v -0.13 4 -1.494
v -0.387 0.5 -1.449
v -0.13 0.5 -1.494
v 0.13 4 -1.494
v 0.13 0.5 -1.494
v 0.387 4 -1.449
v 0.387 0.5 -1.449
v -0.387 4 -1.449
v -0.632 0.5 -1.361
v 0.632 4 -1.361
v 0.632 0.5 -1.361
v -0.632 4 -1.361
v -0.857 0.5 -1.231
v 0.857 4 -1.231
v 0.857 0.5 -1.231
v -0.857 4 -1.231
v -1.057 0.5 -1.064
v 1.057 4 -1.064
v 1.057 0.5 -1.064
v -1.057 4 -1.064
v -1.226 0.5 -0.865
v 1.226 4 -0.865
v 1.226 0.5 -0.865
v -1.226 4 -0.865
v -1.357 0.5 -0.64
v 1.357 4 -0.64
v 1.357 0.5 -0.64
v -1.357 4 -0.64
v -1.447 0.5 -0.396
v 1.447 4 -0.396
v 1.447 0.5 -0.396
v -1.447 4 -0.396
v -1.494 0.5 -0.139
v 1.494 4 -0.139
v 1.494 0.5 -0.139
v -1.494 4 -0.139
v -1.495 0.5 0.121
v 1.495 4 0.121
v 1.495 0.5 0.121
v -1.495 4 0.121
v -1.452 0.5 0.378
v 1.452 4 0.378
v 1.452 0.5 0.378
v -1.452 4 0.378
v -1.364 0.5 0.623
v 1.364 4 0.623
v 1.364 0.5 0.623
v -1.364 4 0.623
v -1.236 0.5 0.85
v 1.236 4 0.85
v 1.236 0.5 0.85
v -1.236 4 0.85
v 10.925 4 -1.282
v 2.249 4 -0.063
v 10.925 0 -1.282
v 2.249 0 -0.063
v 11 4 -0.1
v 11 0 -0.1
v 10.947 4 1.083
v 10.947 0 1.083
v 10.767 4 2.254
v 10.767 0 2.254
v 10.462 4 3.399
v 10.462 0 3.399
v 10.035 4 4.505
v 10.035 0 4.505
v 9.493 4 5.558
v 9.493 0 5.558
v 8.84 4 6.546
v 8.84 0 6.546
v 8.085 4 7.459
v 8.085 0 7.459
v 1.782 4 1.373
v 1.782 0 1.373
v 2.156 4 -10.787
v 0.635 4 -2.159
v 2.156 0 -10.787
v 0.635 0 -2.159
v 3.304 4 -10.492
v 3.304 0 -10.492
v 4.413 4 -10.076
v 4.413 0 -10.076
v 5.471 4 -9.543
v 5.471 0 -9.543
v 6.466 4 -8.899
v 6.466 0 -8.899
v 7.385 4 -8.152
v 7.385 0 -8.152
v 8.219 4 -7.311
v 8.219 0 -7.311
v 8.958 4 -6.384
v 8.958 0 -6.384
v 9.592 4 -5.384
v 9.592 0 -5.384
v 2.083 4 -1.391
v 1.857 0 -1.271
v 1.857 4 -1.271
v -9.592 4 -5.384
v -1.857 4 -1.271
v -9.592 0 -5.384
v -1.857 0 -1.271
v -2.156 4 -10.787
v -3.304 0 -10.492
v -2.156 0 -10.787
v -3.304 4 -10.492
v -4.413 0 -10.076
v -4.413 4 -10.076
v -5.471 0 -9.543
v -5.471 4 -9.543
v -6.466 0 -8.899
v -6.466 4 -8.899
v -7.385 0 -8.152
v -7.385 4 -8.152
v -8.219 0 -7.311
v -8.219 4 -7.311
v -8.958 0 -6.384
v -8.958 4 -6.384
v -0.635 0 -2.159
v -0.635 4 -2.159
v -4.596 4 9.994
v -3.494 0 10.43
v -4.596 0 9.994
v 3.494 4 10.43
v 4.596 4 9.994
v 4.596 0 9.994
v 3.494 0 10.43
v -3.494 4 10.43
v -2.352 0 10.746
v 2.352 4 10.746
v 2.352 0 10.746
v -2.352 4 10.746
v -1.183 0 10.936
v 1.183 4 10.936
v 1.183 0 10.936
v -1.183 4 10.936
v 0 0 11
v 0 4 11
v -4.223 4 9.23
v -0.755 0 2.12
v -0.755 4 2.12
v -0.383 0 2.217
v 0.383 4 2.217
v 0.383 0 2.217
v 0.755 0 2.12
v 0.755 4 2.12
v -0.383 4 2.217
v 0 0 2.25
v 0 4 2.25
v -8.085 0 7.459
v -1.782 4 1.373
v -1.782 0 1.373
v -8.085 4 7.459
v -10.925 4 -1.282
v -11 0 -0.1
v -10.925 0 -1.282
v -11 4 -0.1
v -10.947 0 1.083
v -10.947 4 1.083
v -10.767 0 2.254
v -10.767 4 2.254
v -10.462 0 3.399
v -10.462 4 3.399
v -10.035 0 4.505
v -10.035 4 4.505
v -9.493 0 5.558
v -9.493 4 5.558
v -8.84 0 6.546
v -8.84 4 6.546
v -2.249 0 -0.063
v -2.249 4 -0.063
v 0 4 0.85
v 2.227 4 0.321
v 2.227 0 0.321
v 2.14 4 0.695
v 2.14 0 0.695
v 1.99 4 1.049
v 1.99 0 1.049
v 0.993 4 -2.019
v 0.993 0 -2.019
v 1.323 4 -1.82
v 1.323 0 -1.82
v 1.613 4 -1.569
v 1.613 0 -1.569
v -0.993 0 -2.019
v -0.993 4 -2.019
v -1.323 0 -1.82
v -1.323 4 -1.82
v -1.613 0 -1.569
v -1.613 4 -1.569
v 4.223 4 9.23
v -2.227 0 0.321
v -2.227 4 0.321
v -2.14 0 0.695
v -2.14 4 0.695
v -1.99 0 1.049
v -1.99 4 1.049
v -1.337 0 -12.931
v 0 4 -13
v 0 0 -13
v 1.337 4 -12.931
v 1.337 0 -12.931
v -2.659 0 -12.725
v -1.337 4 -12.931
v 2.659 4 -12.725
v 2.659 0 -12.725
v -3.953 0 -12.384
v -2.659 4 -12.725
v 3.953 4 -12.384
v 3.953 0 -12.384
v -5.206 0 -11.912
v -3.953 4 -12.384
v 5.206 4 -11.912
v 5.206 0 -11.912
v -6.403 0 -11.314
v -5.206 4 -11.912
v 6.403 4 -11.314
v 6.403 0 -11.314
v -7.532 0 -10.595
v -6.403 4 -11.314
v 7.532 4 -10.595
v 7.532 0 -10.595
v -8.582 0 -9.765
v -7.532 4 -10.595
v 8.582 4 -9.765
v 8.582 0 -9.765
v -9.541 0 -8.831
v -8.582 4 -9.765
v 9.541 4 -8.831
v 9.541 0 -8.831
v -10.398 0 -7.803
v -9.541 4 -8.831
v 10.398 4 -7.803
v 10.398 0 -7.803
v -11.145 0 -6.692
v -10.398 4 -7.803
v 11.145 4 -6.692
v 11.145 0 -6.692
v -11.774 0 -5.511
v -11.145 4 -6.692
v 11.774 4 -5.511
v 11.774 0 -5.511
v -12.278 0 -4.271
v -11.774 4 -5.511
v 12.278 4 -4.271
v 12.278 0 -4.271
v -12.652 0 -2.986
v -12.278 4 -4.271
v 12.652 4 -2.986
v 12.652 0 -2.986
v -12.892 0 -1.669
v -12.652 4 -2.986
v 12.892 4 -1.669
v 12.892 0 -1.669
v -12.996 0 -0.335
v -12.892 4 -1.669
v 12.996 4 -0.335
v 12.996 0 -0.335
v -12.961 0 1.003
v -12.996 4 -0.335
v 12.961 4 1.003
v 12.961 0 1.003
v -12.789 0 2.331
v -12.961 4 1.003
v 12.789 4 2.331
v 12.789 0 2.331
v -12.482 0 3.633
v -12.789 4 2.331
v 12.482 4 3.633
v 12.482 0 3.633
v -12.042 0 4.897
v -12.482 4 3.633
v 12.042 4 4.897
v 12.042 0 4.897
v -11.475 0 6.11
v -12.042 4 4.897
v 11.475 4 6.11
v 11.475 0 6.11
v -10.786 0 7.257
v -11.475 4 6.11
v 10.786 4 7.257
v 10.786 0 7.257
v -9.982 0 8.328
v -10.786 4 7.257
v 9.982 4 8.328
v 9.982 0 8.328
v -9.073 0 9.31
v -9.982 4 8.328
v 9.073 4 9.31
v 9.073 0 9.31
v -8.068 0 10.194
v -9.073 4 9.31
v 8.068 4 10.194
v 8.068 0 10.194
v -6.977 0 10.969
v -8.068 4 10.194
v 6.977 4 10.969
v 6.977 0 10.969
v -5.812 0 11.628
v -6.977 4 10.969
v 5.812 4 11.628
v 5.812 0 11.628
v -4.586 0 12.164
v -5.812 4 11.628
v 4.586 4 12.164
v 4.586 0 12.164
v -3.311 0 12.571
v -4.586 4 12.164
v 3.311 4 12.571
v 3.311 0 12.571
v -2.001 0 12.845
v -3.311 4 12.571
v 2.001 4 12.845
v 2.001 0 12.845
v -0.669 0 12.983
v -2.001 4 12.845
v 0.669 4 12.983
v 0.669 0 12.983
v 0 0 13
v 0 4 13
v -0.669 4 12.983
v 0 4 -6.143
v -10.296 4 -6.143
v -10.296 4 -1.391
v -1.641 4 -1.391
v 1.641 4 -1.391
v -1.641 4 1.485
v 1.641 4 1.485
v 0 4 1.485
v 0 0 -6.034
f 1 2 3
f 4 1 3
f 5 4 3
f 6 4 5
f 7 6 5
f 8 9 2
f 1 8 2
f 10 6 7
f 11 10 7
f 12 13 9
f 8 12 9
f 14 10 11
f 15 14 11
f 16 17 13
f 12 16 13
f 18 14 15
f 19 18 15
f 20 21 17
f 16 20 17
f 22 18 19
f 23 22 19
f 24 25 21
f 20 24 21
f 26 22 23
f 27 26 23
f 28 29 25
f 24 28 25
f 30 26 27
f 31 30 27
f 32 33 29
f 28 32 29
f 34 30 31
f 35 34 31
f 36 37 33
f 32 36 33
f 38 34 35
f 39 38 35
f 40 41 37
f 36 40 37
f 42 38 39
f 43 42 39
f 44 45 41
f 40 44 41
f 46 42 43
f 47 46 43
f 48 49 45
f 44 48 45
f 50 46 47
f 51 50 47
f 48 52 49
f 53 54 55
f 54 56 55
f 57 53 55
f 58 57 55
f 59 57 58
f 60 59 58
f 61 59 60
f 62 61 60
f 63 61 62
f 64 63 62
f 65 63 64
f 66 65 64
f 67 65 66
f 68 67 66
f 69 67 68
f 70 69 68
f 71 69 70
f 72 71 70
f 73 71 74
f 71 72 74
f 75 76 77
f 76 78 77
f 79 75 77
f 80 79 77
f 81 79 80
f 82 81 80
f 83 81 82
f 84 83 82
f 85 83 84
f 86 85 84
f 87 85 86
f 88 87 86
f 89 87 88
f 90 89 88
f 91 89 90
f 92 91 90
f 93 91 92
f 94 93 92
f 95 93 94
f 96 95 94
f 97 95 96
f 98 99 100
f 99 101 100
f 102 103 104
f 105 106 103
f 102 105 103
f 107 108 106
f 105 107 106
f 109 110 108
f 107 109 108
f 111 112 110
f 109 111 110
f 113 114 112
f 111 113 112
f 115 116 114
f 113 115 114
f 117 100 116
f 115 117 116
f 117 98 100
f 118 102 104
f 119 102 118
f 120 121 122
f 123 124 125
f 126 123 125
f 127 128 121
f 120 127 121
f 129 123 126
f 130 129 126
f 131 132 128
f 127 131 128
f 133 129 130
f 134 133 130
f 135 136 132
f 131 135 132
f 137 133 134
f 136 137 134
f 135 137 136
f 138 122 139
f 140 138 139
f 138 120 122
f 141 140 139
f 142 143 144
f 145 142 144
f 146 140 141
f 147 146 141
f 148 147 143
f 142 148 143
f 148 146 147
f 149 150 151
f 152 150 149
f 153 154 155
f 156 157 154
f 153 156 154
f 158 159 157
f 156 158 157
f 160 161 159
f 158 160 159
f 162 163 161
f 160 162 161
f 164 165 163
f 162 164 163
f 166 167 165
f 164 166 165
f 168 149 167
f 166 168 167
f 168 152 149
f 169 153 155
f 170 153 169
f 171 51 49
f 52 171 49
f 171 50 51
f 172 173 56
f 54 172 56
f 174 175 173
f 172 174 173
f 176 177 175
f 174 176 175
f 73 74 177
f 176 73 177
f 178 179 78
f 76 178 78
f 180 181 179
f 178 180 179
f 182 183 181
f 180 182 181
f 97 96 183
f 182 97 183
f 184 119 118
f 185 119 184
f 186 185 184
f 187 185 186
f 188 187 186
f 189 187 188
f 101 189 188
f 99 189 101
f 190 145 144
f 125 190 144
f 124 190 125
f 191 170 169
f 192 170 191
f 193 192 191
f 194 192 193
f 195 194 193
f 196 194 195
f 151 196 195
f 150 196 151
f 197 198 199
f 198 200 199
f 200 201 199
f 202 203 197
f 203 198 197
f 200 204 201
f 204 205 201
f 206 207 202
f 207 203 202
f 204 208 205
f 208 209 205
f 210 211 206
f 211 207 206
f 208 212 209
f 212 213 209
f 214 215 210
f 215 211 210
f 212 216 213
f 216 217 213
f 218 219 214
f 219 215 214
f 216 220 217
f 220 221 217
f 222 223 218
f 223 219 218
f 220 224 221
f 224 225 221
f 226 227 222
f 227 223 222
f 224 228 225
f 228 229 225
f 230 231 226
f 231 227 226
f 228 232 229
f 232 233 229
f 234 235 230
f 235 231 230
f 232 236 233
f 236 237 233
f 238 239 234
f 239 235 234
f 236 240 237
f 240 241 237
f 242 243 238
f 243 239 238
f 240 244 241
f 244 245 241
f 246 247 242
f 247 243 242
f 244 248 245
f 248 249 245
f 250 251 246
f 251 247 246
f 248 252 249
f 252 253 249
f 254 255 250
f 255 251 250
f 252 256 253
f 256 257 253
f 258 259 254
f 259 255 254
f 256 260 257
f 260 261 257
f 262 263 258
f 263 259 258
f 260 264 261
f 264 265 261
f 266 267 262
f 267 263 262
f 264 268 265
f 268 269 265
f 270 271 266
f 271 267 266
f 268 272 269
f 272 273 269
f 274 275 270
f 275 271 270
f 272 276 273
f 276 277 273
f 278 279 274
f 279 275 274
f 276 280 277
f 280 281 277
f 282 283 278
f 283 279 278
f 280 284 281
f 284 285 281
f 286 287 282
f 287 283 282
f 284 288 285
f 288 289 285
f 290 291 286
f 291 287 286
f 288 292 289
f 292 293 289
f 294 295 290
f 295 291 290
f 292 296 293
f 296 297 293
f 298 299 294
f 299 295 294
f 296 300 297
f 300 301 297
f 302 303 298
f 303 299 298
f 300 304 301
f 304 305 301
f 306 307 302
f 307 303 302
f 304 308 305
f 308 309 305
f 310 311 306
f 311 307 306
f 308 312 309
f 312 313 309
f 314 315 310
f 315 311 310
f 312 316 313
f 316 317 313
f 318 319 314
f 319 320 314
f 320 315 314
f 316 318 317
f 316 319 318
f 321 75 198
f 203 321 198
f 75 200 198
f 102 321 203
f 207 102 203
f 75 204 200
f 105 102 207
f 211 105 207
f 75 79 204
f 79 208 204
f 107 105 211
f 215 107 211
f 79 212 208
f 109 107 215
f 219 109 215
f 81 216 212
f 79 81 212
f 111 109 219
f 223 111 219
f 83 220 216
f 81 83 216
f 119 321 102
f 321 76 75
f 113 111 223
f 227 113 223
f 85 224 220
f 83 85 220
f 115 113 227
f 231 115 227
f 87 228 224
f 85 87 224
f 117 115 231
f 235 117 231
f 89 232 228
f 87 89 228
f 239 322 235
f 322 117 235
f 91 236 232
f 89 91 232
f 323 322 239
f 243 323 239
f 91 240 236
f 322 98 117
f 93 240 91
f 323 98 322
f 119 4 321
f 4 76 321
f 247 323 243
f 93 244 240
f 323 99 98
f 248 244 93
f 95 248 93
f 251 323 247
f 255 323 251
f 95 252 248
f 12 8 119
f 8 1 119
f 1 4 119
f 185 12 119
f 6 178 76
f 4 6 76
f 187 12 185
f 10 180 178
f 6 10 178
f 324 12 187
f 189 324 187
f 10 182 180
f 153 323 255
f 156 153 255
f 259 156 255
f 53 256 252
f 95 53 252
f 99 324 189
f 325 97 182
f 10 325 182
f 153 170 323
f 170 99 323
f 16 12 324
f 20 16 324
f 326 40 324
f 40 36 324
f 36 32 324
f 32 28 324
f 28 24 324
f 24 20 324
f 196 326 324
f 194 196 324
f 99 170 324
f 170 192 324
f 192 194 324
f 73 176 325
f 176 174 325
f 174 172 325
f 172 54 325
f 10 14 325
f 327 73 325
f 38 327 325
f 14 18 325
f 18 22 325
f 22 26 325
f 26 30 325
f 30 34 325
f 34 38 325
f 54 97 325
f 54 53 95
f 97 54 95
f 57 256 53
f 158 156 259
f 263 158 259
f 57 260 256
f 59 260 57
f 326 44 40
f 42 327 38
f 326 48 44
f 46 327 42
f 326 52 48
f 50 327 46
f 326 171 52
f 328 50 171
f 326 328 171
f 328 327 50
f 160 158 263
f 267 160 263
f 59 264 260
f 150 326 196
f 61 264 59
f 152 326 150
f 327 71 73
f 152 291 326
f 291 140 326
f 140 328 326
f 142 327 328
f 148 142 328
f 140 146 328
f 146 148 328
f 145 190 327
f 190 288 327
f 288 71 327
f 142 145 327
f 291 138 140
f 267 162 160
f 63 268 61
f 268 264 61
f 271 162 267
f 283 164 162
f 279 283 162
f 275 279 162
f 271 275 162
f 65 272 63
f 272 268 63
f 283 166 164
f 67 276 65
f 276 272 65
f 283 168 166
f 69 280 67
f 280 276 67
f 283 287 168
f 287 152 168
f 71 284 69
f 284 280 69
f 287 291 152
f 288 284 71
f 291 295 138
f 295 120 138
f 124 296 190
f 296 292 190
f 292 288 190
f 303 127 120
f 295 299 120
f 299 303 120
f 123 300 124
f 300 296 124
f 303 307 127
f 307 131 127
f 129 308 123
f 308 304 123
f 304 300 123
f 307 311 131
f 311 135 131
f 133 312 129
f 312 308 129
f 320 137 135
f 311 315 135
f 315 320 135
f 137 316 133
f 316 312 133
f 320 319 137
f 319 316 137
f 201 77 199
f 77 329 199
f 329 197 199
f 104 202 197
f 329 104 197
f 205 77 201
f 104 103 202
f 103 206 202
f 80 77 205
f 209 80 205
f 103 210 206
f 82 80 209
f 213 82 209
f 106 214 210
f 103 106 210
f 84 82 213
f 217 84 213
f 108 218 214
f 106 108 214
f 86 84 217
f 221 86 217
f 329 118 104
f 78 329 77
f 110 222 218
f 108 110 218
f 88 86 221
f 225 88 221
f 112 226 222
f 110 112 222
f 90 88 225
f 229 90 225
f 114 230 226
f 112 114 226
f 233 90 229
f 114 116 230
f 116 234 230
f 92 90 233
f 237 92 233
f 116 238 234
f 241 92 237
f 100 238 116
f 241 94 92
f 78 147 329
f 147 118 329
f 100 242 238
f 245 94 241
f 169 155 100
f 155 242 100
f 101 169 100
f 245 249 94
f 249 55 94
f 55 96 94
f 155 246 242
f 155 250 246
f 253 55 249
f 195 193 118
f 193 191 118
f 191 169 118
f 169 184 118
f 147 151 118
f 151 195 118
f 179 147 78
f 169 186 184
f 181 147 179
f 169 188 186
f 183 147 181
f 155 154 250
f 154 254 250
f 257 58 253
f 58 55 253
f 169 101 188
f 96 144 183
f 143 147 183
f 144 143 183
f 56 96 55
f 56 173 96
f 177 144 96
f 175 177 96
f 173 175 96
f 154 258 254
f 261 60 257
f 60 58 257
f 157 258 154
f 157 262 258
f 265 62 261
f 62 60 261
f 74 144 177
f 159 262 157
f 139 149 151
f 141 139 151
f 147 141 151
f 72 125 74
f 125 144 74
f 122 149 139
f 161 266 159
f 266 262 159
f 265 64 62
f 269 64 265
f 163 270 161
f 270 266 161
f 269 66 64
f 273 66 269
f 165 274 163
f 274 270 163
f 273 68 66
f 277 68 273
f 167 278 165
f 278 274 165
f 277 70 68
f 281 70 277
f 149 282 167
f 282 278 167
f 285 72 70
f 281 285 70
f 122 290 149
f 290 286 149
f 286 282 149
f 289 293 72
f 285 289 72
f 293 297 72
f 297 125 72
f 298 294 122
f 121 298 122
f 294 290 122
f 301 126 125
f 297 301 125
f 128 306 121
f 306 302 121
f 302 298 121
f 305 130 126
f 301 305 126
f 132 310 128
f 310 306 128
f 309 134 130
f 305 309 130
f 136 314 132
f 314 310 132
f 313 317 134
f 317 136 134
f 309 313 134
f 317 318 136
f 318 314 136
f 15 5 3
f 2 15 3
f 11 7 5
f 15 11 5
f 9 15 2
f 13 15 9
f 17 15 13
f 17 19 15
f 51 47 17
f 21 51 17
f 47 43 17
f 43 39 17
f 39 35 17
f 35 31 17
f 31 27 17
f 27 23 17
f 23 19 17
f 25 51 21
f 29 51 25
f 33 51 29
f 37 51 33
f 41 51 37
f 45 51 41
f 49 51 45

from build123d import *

# Parameters (mm, degrees)
SKETCH1_R           = 13
BOSS_EXTRUDE1_DEPTH = 4
SKETCH1_4_R         = 1.5
BOSS_EXTRUDE2_DEPTH = 0.5


with BuildPart() as part:
    # Sketch1 → Boss-Extrude1 (new body)
    with BuildSketch(Plane(origin=(0, 0, 0), x_dir=(1, 0, 0), z_dir=(0, 1, 0))):
        Circle(SKETCH1_R)
        with BuildLine():
            Line((1.235920709, -0.85), (-1.235920709, -0.85))
            ThreePointArc((-1.235920709, -0.85), (0, 1.5), (1.235920709, -0.85))
        make_face(mode=Mode.SUBTRACT)
        with BuildLine():
            ThreePointArc((1.85666335, 1.270945004), (1.322516818, 1.820288237), (0.635, 2.158535383))
            Line((0.635, 2.158535383), (2.156355605, 10.786571768))
            ThreePointArc((2.156355605, 10.786571768), (6.465637775, 8.899186938), (9.59228884, 5.384050037))
            Line((9.59228884, 5.384050037), (1.85666335, 1.270945004))
        make_face(mode=Mode.SUBTRACT)
        with BuildLine():
            Line((2.249114933, 0.063103228), (10.924989896, 1.282417938))
            ThreePointArc((10.924989896, 1.282417938), (10.461621679, -3.399186938), (8.084716138, -7.459045848))
            Line((8.084716138, -7.459045848), (1.782481056, -1.373048173))
            ThreePointArc((1.782481056, -1.373048173), (2.139877162, -0.695288237), (2.249114933, 0.063103228))
        make_face(mode=Mode.SUBTRACT)
        with BuildLine():
            ThreePointArc((-0.755029473, -2.119535443), (0, -2.25), (0.755029473, -2.119535443))
            Line((0.755029473, -2.119535443), (4.595659477, -9.993993895))
            ThreePointArc((4.595659477, -9.993993895), (0, -11), (-4.595659477, -9.993993895))
            Line((-4.595659477, -9.993993895), (-0.755029473, -2.119535443))
        make_face(mode=Mode.SUBTRACT)
        with BuildLine():
            ThreePointArc((-2.249114933, 0.063103228), (-2.139877162, -0.695288237), (-1.782481056, -1.373048173))
            Line((-1.782481056, -1.373048173), (-8.084716138, -7.459045848))
            ThreePointArc((-8.084716138, -7.459045848), (-10.461621679, -3.399186938), (-10.924989896, 1.282417938))
            Line((-10.924989896, 1.282417938), (-2.249114933, 0.063103228))
        make_face(mode=Mode.SUBTRACT)
        with BuildLine():
            ThreePointArc((-0.635, 2.158535383), (-1.322516818, 1.820288237), (-1.85666335, 1.270945004))
            Line((-1.85666335, 1.270945004), (-9.59228884, 5.384050037))
            ThreePointArc((-9.59228884, 5.384050037), (-6.465637775, 8.899186938), (-2.156355605, 10.786571768))
            Line((-2.156355605, 10.786571768), (-0.635, 2.158535383))
        make_face(mode=Mode.SUBTRACT)
    extrude(amount=BOSS_EXTRUDE1_DEPTH)

    # Sketch1<4> → Boss-Extrude2 (add)
    with BuildSketch(Plane(origin=(0, 0, 0), x_dir=(1, 0, 0), z_dir=(0, 1, 0))):
        Circle(SKETCH1_4_R)
    extrude(amount=BOSS_EXTRUDE2_DEPTH)


solid = part.part
